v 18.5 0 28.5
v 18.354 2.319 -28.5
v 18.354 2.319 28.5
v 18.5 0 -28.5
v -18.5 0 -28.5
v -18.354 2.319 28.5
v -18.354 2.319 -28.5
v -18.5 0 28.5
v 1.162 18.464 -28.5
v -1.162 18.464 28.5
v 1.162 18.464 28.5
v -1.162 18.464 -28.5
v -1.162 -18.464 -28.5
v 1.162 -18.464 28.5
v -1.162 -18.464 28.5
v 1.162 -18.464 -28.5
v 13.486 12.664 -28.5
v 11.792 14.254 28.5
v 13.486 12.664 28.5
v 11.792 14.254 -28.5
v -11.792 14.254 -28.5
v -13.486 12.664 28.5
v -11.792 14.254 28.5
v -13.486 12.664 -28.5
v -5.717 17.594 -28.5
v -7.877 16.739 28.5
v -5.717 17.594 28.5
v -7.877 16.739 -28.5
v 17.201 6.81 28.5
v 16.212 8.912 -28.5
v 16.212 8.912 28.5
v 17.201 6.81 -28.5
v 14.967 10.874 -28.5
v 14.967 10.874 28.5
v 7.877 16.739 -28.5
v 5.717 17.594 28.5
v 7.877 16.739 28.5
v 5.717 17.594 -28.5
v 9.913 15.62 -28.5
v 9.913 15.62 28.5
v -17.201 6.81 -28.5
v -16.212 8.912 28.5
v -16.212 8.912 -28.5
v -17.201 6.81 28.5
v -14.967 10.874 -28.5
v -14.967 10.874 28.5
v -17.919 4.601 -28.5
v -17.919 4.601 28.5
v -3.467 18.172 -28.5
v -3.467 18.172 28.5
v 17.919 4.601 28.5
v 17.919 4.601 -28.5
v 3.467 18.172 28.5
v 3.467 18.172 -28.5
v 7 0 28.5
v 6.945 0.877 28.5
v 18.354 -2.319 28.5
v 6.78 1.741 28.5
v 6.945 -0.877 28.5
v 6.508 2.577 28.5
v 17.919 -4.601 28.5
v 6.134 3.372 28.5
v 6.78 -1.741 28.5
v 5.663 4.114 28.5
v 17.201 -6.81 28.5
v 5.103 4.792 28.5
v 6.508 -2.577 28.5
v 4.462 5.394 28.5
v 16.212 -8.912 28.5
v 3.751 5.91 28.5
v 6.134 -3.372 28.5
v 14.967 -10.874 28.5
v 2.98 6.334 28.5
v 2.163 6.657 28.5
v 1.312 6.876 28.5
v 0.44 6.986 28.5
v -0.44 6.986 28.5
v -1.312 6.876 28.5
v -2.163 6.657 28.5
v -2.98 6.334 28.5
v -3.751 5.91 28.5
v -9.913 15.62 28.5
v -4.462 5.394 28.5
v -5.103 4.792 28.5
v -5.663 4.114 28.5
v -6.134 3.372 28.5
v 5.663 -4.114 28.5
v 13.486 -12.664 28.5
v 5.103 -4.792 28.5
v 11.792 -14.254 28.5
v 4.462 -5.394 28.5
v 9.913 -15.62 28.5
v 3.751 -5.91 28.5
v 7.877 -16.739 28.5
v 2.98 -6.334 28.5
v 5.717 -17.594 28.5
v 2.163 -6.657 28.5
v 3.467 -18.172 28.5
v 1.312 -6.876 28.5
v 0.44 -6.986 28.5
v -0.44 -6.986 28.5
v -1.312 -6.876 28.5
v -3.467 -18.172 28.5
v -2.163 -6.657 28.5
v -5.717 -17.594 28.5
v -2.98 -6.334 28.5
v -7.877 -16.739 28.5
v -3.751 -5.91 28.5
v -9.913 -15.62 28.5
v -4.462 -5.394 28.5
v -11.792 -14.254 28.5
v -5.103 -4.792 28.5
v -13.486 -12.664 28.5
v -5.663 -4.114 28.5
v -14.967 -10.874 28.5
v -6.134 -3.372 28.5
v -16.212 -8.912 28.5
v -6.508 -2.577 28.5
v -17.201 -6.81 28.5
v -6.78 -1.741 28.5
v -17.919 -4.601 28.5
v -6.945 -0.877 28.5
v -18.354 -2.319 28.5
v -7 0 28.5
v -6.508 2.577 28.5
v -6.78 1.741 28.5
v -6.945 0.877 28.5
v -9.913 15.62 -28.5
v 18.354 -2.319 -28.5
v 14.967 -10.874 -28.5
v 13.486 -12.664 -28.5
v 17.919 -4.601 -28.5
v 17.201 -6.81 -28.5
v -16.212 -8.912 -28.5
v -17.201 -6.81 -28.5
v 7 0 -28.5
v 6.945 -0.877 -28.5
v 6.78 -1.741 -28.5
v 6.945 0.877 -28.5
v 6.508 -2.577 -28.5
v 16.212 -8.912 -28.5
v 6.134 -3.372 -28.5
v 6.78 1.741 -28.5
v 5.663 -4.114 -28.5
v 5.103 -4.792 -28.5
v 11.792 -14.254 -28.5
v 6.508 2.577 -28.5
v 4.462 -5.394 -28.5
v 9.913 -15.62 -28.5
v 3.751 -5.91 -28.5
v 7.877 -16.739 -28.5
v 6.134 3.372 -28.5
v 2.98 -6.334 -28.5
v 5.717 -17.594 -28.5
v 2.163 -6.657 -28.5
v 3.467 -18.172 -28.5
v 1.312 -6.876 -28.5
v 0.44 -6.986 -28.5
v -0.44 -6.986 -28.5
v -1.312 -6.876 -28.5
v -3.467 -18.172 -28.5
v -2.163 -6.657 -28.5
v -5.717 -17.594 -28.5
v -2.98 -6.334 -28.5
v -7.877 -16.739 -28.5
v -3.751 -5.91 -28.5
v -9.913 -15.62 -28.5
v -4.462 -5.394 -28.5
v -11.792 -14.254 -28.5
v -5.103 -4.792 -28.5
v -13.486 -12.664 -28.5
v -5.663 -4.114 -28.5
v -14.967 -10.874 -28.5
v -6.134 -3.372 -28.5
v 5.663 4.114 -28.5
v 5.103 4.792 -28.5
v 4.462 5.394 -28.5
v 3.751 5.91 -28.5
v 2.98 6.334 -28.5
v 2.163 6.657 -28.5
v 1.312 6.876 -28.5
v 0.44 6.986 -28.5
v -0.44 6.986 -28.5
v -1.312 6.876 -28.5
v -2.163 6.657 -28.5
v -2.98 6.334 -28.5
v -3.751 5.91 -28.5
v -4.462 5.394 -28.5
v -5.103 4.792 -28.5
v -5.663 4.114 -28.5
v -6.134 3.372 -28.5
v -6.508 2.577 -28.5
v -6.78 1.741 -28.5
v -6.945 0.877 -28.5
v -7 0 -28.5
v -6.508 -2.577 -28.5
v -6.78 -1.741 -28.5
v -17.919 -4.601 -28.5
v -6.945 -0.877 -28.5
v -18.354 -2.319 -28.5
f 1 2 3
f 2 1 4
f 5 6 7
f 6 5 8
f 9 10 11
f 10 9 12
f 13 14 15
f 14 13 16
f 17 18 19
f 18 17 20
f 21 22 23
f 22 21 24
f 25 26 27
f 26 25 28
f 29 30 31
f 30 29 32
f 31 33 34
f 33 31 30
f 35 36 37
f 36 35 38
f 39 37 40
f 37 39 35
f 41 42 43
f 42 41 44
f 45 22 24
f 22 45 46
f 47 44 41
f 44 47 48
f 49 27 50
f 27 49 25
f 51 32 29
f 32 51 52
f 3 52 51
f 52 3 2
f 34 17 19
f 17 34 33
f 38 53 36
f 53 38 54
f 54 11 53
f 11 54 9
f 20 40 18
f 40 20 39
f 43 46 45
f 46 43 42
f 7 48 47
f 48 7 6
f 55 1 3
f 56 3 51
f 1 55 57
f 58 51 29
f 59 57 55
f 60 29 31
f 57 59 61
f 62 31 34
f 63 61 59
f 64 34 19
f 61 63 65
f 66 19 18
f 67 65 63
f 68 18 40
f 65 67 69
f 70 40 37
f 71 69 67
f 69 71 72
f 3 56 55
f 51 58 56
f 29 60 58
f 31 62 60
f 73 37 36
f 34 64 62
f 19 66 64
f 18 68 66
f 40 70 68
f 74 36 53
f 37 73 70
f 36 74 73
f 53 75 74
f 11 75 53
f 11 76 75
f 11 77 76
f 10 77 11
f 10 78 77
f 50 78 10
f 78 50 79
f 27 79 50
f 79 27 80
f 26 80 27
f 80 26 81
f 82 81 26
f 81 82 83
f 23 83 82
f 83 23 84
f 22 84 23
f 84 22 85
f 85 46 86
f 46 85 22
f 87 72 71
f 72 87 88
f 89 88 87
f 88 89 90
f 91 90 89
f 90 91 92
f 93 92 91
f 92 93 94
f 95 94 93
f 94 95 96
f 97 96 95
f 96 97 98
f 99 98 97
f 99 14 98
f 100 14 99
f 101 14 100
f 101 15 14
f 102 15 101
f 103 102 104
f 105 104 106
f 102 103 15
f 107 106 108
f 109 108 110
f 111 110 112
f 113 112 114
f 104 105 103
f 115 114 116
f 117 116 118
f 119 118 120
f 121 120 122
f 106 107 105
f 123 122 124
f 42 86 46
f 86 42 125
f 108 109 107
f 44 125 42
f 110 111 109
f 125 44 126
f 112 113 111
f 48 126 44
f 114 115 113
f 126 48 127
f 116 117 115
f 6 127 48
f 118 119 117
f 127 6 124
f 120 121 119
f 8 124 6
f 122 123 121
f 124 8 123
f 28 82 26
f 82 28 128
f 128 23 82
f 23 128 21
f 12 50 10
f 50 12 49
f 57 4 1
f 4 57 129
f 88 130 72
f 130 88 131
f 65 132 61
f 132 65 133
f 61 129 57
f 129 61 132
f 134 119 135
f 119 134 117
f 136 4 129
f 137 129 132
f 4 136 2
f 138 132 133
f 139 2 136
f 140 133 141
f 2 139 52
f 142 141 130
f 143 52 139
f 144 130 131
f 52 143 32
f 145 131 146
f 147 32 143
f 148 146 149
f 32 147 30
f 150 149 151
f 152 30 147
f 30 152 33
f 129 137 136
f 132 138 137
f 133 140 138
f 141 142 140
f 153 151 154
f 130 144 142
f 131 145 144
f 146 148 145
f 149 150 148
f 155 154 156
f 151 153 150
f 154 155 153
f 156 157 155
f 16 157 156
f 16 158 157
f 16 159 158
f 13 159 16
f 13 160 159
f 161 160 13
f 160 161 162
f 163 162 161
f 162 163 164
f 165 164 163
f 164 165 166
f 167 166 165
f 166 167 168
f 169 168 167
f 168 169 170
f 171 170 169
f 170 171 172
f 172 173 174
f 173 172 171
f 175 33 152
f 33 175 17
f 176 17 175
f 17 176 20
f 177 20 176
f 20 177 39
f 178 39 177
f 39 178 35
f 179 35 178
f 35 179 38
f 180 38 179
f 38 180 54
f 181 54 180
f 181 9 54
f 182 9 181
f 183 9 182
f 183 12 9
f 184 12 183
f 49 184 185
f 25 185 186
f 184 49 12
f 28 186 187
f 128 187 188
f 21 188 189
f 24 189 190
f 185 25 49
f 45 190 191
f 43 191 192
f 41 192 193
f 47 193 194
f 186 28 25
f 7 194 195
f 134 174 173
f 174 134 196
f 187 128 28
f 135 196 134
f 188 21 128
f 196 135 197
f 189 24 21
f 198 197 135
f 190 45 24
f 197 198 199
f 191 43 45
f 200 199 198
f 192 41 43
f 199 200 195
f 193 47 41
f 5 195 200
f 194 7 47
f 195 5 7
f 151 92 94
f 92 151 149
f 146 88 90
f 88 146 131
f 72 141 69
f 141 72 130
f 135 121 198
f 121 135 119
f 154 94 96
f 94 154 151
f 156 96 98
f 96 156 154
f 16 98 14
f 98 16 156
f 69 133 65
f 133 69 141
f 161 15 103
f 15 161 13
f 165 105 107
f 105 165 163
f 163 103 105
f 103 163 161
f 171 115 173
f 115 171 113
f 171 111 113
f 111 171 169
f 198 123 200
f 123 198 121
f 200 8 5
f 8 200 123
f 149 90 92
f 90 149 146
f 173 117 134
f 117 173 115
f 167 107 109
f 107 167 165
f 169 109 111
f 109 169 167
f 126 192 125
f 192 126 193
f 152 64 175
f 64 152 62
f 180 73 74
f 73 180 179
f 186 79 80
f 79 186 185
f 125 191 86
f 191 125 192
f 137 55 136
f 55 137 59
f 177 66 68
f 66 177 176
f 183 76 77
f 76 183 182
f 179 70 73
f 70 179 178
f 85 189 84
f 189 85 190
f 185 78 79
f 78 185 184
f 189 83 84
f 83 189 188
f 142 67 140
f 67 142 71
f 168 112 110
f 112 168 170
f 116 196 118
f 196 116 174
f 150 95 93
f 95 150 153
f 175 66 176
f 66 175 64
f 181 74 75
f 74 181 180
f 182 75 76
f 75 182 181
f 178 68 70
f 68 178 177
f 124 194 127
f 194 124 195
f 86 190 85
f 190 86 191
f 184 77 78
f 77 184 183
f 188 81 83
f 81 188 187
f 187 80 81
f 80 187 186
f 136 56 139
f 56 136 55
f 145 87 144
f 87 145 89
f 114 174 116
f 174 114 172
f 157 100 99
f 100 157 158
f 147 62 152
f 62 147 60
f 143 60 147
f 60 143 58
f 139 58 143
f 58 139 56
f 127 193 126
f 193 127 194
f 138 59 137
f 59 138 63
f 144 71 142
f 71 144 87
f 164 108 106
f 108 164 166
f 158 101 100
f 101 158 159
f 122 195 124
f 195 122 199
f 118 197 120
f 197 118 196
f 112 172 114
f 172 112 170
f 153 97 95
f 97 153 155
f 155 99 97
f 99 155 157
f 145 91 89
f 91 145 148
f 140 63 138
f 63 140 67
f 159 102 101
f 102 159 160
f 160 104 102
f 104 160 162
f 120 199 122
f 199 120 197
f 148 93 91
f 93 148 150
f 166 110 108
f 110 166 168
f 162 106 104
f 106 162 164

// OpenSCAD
$fn = 50;


difference() {
	union() {
		translate(v = [0, 0, -28.5000000000]) {
			cylinder(h = 57, r = 18.5000000000);
		}
	}
	union() {
		translate(v = [0, 0, -100.0000000000]) {
			cylinder(h = 200, r = 7);
		}
	}
}
